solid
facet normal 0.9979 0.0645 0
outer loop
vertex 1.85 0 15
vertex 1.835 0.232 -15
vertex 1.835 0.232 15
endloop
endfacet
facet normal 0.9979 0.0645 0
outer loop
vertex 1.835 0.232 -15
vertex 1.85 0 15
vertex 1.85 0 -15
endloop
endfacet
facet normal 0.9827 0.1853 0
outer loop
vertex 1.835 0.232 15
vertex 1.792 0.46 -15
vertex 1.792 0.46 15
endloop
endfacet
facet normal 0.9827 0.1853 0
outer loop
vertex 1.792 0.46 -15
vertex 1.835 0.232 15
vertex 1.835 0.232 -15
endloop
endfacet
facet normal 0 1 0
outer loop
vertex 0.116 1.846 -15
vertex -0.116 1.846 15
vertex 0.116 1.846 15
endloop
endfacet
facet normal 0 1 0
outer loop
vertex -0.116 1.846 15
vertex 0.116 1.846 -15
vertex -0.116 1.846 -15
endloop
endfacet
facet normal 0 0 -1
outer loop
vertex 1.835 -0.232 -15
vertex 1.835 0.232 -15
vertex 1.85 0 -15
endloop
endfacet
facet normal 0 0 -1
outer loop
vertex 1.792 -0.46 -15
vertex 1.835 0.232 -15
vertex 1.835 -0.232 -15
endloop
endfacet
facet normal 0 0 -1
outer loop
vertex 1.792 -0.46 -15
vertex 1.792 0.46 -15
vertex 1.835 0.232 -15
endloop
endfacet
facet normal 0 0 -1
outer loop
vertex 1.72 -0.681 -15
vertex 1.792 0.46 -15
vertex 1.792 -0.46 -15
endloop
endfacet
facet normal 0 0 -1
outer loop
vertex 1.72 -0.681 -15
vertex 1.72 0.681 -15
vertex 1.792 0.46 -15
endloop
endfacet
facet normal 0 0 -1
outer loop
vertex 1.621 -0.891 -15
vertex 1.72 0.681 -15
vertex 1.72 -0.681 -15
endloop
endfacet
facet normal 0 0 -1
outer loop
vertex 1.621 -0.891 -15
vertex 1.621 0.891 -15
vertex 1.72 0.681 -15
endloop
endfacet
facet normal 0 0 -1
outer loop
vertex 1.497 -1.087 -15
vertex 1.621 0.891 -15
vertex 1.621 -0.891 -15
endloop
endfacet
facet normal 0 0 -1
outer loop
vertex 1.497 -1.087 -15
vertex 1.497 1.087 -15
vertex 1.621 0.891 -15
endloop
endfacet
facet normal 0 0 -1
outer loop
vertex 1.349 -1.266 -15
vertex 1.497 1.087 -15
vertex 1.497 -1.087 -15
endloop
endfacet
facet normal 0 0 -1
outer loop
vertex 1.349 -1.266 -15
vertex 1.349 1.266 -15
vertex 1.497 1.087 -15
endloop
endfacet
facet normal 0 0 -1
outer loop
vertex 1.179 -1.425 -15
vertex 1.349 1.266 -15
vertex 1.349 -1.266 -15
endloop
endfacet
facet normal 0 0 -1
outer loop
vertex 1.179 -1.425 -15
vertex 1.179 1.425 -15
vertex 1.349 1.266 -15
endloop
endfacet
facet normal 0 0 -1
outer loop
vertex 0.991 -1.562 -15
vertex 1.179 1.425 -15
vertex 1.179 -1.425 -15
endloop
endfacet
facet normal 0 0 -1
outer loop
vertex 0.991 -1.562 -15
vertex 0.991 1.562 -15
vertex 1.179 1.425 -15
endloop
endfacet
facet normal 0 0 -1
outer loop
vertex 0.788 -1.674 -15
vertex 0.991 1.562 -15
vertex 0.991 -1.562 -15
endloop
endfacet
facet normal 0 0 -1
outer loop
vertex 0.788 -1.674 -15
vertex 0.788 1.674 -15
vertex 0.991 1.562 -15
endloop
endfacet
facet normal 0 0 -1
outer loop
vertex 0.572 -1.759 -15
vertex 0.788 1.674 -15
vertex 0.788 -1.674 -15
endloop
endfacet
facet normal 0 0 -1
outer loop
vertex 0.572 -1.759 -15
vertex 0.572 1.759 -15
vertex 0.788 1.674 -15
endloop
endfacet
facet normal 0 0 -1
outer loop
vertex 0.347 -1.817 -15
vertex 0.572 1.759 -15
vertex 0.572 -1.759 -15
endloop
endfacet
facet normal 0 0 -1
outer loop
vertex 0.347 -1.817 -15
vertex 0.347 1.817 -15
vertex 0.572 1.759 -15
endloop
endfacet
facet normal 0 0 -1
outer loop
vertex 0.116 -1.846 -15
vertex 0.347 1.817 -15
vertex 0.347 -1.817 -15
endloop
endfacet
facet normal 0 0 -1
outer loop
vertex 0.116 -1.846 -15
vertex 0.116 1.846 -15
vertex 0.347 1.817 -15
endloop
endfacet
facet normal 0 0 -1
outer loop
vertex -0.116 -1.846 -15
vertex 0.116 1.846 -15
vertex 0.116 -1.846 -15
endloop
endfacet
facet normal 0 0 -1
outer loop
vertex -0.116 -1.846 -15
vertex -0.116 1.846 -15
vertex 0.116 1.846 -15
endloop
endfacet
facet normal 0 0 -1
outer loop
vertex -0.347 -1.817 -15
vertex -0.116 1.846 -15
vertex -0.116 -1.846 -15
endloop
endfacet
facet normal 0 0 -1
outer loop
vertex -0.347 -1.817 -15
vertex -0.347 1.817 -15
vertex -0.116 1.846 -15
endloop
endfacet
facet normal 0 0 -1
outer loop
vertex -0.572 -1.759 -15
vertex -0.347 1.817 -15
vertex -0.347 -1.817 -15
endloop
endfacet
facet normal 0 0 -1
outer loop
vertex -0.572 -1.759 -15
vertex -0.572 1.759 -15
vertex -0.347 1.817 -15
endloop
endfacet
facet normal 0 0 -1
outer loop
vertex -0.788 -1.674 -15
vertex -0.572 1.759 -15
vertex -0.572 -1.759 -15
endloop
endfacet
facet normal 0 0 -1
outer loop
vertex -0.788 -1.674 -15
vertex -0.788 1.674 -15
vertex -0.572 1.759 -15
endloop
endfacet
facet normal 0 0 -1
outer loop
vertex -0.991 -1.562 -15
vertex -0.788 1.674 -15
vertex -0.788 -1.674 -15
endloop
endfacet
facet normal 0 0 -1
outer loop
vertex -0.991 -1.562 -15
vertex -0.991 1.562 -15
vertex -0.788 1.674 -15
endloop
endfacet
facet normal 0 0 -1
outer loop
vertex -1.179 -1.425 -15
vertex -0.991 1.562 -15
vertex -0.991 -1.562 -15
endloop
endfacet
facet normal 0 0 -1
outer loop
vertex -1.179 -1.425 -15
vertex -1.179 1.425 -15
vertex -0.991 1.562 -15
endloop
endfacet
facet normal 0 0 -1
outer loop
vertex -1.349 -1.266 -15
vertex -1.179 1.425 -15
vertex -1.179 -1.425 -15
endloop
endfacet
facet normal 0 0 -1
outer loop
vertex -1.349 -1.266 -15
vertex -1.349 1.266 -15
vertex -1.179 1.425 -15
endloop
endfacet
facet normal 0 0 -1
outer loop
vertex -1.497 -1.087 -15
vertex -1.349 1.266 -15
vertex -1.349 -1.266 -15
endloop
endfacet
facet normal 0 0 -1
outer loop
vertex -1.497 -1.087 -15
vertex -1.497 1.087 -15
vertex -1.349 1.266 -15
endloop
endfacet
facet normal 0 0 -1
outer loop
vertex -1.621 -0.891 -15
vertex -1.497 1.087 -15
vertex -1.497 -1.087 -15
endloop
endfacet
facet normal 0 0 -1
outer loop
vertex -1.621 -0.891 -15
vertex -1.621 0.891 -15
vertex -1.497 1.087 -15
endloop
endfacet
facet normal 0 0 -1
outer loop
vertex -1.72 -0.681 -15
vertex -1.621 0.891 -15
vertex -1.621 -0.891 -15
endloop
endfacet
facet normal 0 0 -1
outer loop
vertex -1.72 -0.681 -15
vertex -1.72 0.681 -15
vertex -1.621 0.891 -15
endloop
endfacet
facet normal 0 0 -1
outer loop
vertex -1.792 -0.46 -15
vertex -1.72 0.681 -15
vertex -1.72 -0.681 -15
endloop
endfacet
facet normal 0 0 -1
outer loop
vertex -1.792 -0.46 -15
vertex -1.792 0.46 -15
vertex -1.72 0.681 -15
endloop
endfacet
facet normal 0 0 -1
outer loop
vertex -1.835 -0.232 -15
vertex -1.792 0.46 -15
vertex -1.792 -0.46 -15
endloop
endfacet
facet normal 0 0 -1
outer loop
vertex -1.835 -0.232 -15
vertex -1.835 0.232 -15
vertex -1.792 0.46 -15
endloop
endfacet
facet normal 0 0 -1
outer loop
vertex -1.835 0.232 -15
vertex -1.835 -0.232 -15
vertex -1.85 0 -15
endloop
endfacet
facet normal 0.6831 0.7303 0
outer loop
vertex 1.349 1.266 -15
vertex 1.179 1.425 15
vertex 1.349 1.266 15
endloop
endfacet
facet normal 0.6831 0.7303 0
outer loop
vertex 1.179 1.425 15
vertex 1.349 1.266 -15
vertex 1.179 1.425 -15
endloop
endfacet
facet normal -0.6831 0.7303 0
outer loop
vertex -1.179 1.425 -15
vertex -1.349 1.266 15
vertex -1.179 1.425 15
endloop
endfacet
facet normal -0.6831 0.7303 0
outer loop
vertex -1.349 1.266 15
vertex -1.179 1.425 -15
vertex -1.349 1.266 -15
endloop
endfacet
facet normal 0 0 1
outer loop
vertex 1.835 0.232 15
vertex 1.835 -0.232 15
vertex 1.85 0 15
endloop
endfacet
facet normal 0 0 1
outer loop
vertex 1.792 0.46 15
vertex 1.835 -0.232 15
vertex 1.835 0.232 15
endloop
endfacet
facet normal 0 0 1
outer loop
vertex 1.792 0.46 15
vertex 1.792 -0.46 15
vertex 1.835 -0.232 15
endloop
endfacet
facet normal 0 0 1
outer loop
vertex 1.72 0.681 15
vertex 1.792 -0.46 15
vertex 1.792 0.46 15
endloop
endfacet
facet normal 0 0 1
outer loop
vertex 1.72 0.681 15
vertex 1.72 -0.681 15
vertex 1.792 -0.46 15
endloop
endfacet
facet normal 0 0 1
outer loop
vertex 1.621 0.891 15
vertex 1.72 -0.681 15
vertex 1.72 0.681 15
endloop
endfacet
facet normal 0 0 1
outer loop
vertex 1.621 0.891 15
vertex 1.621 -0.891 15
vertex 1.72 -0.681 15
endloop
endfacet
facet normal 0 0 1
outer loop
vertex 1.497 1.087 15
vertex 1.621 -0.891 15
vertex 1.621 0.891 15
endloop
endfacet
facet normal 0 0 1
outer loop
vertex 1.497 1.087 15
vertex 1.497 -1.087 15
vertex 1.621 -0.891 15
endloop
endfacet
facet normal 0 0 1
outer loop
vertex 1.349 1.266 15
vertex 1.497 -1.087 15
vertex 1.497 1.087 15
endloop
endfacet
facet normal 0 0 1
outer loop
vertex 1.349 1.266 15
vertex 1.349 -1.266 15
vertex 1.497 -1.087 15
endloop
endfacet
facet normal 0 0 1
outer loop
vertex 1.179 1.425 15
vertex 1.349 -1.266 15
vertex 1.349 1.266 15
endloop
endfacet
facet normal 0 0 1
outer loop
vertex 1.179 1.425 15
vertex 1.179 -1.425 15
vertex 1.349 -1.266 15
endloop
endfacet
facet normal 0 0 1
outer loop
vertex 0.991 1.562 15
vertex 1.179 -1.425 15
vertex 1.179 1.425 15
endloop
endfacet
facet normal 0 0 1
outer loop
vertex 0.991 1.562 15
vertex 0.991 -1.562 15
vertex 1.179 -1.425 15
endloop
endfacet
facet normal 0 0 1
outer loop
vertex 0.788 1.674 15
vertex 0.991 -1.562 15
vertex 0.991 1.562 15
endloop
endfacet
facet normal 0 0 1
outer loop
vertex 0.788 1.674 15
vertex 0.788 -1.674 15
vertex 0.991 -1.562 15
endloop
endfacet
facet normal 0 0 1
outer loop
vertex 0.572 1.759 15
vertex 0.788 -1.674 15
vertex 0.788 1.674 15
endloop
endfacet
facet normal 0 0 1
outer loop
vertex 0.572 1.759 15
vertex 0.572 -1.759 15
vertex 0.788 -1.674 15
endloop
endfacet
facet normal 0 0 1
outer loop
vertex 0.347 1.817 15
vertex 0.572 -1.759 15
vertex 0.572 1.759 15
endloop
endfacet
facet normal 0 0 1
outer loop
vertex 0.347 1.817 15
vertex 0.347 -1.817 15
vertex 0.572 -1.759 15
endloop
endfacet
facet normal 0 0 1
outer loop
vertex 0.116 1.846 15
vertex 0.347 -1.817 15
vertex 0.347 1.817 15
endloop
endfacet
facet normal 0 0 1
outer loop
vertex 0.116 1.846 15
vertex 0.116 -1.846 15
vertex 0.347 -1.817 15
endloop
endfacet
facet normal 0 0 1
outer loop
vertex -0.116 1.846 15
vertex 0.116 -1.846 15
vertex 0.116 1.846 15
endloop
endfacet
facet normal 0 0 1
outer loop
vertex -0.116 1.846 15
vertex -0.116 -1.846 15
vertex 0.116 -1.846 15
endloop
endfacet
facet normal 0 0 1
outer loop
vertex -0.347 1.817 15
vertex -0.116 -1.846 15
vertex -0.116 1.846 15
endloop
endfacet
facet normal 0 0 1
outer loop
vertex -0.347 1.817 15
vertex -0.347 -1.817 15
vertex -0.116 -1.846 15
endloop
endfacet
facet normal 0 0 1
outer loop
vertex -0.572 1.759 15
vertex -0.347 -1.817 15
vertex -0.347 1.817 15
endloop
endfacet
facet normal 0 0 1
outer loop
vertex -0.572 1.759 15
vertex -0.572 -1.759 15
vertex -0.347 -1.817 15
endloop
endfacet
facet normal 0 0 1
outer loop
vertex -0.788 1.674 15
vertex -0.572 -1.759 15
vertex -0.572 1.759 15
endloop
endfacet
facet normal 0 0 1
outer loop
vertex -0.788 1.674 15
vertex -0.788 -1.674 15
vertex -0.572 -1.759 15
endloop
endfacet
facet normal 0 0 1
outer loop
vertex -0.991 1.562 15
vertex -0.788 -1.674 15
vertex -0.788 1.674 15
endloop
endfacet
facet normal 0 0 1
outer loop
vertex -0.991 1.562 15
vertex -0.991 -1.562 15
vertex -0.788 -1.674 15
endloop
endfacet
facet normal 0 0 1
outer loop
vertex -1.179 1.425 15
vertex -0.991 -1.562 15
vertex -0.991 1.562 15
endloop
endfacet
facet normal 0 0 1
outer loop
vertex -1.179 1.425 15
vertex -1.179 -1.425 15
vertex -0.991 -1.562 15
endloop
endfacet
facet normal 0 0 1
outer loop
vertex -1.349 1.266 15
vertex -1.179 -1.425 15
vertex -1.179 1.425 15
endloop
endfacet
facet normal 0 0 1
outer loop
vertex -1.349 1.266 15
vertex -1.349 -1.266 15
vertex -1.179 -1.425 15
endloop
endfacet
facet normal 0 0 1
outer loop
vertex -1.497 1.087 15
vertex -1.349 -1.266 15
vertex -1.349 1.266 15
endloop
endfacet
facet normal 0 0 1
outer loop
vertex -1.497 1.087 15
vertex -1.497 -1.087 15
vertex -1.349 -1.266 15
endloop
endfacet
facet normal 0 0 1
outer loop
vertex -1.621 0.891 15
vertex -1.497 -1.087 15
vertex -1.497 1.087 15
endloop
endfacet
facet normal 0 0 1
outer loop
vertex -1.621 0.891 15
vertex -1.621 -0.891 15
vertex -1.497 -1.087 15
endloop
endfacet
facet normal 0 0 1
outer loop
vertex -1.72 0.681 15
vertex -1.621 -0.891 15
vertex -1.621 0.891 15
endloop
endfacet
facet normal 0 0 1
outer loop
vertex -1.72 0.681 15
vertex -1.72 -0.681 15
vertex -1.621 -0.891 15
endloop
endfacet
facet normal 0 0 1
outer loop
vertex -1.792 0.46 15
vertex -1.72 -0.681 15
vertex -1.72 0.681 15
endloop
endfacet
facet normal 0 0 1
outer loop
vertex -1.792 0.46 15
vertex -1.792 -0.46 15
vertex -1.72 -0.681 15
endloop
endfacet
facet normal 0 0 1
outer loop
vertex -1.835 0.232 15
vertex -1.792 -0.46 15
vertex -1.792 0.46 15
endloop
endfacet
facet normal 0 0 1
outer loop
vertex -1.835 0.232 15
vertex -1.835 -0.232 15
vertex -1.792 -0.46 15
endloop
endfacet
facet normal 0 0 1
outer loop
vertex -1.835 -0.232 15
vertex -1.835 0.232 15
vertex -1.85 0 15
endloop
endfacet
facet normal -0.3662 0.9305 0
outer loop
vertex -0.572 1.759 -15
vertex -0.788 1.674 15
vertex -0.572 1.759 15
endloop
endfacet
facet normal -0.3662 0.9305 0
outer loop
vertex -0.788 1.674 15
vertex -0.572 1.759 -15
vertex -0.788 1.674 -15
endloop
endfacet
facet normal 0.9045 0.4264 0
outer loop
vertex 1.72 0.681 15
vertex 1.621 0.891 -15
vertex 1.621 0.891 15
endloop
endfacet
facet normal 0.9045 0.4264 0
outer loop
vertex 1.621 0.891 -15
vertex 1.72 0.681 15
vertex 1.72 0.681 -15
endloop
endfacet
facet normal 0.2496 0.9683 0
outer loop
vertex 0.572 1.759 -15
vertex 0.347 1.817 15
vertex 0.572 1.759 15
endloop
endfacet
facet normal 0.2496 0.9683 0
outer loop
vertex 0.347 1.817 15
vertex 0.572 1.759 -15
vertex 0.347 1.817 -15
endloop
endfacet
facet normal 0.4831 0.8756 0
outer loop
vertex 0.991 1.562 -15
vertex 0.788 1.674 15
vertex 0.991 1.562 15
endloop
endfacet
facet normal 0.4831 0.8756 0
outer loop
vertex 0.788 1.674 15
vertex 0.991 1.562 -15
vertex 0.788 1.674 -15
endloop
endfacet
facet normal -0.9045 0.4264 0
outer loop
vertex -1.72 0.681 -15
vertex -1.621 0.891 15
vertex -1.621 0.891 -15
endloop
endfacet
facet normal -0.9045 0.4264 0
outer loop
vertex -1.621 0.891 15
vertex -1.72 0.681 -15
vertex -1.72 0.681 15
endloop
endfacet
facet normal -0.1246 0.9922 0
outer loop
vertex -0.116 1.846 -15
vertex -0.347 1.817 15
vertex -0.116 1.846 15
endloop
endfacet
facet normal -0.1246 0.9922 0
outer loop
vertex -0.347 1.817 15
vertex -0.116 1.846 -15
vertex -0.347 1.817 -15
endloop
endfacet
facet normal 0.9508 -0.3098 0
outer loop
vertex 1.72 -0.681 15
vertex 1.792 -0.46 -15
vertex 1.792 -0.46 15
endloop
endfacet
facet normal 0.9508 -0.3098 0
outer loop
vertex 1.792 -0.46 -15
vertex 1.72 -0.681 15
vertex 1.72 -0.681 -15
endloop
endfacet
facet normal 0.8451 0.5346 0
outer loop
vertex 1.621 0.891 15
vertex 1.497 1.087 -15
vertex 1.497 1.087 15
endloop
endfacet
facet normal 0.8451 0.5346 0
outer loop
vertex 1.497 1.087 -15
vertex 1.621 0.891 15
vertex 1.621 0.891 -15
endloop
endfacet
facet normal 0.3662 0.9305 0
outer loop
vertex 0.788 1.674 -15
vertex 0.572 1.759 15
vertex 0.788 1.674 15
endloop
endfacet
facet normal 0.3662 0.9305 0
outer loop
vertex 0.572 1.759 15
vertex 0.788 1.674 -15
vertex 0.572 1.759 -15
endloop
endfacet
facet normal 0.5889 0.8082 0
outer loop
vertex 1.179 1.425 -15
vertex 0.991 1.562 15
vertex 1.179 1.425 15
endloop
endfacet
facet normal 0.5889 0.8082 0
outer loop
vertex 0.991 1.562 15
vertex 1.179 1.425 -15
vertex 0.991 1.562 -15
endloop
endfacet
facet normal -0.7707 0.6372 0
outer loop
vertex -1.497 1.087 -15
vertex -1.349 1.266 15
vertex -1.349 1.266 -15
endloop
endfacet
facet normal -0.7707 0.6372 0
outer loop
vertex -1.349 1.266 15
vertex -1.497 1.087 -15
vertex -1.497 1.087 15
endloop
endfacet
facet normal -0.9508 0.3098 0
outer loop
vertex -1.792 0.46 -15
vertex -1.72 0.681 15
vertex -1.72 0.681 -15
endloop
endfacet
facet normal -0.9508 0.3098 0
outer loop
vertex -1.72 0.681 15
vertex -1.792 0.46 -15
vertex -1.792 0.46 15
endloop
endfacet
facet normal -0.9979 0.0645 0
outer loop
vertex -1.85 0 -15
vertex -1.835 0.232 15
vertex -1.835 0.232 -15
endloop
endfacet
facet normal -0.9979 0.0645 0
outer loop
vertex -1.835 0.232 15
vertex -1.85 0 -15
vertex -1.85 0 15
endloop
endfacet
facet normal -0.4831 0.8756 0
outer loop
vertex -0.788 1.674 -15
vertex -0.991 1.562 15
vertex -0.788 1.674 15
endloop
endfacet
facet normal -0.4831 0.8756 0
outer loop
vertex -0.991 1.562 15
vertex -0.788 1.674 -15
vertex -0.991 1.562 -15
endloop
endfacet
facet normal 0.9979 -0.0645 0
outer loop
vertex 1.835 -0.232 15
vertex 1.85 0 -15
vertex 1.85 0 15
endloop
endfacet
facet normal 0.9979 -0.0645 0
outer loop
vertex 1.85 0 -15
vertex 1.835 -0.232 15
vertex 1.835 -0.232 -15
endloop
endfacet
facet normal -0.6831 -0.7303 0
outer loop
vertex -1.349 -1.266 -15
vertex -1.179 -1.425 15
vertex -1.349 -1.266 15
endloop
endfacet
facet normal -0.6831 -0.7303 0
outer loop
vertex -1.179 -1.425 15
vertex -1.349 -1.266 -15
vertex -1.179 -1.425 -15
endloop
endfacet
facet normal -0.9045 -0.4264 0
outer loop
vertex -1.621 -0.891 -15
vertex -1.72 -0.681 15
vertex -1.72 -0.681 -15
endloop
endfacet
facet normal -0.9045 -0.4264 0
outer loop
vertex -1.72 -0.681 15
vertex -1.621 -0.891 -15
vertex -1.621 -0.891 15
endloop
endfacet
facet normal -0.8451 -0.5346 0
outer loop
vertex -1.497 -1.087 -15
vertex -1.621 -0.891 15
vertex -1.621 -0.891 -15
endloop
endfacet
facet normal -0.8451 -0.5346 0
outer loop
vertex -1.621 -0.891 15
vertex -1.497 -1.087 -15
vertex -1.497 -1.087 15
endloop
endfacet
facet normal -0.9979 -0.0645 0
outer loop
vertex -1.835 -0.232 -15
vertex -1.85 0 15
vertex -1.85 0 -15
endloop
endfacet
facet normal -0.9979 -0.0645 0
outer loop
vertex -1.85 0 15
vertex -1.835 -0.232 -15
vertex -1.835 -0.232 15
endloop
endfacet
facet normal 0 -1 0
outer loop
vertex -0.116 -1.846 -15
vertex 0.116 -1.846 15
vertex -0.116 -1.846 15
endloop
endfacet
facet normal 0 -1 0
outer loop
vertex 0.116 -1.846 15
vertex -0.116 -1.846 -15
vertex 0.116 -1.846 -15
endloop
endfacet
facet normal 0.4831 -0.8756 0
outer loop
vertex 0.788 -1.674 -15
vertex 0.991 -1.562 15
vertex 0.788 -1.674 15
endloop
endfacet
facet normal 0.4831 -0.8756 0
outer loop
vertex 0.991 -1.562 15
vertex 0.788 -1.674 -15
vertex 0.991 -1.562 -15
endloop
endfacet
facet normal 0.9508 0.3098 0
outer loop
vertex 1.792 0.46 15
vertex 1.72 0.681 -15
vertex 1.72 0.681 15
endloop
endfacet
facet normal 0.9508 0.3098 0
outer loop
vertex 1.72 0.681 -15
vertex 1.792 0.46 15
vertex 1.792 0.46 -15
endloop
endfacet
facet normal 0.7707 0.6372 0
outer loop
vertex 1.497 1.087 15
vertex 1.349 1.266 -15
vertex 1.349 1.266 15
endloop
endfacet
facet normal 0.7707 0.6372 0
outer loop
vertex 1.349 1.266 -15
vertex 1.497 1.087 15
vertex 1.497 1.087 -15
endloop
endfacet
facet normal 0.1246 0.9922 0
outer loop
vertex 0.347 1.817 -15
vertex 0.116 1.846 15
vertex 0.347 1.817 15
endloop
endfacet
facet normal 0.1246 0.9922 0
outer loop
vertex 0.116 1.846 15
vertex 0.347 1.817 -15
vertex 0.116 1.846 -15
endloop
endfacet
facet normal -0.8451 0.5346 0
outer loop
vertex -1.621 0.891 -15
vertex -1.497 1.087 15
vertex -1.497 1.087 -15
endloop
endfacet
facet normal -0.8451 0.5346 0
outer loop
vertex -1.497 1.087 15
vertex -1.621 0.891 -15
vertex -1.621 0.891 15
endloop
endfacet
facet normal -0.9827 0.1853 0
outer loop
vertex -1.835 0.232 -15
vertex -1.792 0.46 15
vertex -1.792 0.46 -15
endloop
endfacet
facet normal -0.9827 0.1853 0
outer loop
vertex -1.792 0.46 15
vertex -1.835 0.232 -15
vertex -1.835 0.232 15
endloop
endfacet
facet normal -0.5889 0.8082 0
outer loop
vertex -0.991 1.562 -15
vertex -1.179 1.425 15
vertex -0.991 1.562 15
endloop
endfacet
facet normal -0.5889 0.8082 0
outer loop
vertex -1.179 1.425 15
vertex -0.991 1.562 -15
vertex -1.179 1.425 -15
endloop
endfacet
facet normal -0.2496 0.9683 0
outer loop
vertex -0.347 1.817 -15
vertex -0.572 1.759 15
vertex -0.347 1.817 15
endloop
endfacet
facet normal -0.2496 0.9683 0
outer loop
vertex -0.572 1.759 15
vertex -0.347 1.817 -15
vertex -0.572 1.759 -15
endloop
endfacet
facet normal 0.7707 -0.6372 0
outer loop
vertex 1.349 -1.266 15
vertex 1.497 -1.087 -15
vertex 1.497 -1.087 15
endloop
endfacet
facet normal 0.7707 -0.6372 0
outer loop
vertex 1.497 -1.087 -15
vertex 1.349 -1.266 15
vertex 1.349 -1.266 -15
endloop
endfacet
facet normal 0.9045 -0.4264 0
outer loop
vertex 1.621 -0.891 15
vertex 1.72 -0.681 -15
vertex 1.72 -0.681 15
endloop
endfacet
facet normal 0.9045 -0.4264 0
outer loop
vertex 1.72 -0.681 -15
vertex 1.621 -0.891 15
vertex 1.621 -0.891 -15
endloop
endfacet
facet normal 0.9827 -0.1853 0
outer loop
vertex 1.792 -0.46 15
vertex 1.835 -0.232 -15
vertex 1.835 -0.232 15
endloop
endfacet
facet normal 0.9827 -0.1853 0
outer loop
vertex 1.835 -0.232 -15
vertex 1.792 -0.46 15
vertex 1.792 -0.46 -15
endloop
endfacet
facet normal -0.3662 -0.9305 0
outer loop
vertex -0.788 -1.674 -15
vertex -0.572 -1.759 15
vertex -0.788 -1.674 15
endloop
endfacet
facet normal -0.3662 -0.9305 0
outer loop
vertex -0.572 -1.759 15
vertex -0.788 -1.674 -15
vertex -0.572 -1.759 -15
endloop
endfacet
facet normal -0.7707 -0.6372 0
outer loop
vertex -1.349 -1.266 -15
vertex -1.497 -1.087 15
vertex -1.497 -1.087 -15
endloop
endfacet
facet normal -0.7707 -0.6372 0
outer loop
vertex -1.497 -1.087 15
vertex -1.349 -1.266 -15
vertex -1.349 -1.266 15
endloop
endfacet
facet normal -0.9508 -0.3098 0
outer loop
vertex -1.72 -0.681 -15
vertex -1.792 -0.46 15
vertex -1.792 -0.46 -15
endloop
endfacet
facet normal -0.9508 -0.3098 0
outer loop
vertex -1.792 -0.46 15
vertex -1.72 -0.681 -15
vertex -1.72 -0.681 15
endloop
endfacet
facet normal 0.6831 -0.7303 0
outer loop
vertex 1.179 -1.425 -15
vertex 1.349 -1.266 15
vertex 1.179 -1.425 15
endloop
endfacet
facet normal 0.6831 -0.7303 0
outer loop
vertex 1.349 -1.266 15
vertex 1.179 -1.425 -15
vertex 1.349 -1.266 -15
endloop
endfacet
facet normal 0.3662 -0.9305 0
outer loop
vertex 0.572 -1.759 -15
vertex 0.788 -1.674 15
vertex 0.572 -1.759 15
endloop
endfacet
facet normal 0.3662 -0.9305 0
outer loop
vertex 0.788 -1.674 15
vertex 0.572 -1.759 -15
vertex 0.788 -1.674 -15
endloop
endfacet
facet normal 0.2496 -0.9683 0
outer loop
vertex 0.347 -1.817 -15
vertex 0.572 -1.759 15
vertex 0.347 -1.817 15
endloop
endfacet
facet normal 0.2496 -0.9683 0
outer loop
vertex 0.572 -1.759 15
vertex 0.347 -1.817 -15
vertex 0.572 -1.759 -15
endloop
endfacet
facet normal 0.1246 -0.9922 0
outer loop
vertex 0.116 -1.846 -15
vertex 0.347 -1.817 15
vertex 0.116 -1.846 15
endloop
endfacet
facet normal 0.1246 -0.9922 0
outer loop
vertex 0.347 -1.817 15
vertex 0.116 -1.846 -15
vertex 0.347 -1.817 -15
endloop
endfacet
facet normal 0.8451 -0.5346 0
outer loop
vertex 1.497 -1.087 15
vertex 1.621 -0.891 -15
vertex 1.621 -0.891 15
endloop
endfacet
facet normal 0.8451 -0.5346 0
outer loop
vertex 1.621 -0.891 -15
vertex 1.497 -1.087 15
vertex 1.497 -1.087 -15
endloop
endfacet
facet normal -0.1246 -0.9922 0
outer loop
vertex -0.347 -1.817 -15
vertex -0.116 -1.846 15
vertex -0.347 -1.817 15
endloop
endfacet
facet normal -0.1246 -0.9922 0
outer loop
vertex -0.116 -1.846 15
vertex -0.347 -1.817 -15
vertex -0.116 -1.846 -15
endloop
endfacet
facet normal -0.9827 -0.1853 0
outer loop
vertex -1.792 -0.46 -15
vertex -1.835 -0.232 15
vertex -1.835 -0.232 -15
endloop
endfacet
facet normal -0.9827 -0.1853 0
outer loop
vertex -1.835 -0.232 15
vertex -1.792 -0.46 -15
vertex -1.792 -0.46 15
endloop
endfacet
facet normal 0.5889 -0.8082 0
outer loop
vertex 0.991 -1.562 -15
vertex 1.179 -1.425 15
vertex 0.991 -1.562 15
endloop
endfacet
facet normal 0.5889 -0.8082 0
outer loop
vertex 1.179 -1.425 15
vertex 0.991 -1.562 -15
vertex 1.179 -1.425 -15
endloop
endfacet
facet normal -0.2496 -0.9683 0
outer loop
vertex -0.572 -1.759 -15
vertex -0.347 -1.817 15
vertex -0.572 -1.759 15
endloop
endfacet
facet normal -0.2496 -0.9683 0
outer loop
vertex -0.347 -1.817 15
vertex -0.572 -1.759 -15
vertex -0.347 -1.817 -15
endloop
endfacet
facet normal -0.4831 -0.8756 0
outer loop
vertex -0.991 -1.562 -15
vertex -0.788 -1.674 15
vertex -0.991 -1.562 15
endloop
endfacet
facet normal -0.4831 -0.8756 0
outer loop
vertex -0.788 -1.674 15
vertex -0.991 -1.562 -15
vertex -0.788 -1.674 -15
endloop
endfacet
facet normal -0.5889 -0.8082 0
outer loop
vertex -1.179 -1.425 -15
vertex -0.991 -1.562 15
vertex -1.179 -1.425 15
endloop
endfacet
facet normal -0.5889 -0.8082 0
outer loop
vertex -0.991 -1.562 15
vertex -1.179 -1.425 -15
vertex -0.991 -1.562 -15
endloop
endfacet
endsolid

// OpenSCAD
$fn = 50;


difference() {
	union() {
		translate(v = [0, 0, -15.0000000000]) {
			cylinder(h = 30, r = 1.8500000000);
		}
	}
	union() {
		translate(v = [0, 0, -100.0000000000]) {
			cylinder(h = 200, r = 0);
		}
	}
}
